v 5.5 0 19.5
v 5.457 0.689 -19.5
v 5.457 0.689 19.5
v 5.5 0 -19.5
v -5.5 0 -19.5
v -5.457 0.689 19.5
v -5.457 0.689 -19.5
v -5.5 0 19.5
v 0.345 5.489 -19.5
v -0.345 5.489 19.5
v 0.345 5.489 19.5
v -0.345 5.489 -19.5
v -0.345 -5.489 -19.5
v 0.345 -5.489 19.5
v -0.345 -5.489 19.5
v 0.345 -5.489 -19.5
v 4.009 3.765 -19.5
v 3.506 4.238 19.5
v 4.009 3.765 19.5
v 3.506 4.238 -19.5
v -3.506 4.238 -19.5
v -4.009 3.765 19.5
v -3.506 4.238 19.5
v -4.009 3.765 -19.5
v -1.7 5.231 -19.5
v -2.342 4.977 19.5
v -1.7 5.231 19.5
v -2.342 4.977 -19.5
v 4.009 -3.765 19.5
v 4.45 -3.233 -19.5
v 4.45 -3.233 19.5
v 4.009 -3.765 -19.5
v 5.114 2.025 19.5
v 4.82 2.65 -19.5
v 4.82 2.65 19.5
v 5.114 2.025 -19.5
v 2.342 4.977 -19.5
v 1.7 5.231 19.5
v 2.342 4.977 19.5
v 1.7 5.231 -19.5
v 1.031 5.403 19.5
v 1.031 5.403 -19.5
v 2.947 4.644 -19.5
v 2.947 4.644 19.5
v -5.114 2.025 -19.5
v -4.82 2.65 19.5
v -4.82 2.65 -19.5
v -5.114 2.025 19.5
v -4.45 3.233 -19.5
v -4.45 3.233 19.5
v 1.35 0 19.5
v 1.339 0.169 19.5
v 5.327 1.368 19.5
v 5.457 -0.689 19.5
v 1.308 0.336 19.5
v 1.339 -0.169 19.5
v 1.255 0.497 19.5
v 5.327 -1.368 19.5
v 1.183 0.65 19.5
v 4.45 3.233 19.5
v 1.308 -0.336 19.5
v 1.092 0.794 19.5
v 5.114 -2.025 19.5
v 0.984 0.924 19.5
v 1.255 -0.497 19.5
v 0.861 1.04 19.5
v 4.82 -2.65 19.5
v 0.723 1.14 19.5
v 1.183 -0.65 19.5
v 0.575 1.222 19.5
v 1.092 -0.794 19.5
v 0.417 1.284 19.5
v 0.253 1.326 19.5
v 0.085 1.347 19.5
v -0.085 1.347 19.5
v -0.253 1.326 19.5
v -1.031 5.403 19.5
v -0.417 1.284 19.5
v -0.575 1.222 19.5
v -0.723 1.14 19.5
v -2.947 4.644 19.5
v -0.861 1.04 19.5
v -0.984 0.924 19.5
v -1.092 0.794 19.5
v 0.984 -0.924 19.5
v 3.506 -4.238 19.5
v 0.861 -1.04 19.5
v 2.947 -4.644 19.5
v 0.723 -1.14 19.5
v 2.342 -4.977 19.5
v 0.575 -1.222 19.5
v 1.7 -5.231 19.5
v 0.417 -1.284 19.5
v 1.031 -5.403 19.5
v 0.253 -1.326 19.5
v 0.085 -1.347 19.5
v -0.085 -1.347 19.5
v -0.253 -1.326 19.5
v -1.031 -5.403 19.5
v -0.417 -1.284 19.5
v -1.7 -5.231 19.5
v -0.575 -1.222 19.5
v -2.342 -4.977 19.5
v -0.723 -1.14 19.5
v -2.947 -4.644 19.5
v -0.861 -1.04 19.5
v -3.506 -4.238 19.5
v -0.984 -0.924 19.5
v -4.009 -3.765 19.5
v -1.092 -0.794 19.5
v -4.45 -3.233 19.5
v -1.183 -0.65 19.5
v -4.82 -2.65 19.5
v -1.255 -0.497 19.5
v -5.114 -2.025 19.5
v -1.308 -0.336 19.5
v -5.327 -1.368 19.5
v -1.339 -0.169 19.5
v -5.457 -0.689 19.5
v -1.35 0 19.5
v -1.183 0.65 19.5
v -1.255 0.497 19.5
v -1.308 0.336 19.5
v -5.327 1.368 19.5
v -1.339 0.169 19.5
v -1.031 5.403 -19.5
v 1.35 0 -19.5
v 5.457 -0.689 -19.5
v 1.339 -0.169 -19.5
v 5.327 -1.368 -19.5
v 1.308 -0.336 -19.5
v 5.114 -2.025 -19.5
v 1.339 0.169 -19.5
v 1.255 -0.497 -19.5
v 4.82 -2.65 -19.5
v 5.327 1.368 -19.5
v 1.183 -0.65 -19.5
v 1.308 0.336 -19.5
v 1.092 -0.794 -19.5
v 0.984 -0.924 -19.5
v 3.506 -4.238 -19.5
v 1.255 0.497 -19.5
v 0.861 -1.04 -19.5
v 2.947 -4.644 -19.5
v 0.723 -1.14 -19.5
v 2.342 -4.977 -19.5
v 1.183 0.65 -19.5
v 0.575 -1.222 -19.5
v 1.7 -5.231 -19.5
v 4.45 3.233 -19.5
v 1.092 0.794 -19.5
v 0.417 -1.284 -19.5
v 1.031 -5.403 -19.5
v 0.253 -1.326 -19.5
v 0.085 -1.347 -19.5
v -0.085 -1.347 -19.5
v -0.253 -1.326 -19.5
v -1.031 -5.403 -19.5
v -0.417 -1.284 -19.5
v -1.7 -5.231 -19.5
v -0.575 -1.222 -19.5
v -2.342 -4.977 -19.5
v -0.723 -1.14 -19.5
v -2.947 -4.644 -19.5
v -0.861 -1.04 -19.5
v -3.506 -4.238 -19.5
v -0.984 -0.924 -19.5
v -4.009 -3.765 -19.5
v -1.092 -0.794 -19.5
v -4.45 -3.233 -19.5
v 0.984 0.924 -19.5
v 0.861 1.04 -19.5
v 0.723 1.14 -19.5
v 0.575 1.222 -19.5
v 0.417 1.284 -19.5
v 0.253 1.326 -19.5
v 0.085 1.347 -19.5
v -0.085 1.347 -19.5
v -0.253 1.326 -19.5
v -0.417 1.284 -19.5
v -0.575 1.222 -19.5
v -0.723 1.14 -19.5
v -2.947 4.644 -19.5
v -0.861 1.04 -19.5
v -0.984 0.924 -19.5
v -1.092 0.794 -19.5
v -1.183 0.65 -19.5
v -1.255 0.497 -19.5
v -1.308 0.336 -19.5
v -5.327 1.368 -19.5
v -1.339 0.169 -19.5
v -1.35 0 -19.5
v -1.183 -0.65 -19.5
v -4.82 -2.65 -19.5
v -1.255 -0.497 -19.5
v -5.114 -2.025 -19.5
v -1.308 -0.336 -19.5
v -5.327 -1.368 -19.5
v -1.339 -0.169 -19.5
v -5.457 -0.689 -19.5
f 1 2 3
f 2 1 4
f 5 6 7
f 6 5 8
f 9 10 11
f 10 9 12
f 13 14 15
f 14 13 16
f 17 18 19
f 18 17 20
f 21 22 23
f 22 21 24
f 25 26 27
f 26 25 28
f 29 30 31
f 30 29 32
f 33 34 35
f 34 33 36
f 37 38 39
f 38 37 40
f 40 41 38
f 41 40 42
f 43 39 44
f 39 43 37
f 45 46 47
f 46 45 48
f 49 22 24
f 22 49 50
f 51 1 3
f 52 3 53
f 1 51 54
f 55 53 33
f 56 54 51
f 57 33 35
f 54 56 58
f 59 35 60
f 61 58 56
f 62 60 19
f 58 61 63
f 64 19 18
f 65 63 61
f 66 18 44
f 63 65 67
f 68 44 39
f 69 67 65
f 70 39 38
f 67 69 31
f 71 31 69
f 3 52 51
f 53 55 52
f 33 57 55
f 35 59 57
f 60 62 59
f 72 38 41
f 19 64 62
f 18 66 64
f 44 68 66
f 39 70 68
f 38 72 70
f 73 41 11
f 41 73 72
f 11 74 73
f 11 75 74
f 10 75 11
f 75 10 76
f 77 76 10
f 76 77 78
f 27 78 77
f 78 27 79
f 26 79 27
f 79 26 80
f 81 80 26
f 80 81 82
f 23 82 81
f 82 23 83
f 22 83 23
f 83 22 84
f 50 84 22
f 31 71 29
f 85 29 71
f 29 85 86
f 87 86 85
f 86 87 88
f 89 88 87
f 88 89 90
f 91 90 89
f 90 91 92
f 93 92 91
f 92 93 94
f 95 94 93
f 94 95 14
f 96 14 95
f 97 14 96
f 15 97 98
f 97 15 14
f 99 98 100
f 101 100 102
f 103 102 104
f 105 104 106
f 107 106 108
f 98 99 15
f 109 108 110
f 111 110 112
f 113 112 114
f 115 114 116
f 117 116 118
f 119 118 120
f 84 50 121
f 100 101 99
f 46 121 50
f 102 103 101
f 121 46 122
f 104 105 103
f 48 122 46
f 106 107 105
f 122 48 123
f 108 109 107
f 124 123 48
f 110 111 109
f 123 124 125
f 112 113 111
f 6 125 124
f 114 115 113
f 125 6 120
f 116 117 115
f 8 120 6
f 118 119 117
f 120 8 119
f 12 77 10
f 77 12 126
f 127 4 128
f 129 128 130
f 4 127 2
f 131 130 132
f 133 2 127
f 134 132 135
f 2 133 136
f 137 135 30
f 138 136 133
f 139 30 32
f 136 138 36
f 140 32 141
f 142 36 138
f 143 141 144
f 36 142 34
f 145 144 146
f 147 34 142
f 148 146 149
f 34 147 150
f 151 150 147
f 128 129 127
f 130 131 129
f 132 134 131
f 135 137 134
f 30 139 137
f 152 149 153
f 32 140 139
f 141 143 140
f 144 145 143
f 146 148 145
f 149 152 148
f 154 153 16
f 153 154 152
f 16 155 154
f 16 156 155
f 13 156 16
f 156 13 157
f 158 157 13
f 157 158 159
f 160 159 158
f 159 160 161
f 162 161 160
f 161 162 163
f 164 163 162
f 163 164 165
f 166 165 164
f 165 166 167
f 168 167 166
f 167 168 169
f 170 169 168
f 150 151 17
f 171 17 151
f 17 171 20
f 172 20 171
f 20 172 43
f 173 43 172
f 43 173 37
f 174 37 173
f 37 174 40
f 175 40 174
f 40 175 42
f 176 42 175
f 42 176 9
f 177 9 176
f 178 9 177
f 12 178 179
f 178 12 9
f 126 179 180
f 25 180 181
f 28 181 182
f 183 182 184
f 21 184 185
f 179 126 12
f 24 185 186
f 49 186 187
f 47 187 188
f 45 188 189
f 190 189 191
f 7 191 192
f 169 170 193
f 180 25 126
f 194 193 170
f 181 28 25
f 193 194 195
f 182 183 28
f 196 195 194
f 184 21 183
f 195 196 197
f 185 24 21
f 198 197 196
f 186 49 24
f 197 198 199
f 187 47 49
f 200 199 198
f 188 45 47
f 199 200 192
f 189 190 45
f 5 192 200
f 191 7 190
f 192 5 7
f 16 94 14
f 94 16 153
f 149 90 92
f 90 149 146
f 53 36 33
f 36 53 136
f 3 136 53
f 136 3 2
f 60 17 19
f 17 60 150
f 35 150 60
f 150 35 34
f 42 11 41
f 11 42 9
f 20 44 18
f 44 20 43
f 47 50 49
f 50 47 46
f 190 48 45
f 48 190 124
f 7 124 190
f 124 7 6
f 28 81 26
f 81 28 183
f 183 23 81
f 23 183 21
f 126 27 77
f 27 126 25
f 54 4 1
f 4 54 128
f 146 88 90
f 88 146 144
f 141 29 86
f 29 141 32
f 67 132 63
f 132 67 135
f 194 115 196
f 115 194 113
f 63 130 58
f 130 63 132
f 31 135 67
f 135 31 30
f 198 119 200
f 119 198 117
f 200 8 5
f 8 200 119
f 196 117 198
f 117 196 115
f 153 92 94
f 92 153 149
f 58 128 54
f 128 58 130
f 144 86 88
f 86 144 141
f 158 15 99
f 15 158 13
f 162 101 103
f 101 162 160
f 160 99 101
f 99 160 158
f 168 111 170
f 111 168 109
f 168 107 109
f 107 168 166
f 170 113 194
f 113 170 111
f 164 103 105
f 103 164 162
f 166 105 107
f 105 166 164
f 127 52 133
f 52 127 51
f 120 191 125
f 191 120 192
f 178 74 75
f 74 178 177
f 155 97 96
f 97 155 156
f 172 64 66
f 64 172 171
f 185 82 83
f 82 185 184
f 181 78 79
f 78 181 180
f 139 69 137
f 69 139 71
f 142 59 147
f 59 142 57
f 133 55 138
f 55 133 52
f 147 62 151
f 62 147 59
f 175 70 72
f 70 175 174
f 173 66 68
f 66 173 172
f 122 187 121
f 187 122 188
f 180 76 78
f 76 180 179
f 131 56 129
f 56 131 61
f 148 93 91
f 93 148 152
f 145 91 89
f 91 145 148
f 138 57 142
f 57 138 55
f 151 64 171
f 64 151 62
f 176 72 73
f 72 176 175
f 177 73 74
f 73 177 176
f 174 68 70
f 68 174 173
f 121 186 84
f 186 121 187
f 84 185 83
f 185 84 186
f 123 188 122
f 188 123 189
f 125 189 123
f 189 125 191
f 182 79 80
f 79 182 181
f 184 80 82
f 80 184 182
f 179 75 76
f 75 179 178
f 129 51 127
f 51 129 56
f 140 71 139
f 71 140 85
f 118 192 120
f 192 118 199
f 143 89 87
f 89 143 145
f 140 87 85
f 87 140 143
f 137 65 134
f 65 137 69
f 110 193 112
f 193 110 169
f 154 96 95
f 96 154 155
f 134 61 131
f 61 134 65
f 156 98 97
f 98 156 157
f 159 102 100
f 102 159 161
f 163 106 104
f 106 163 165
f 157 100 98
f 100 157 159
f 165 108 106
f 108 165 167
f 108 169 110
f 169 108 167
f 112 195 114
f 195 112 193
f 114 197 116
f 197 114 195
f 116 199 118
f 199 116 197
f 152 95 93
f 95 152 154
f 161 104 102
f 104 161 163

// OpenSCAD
$fn = 50;


difference() {
	union() {
		translate(v = [0, 0, -19.5000000000]) {
			cylinder(h = 39, r = 5.5000000000);
		}
	}
	union() {
		translate(v = [0, 0, -100.0000000000]) {
			cylinder(h = 200, r = 1.3500000000);
		}
	}
}
